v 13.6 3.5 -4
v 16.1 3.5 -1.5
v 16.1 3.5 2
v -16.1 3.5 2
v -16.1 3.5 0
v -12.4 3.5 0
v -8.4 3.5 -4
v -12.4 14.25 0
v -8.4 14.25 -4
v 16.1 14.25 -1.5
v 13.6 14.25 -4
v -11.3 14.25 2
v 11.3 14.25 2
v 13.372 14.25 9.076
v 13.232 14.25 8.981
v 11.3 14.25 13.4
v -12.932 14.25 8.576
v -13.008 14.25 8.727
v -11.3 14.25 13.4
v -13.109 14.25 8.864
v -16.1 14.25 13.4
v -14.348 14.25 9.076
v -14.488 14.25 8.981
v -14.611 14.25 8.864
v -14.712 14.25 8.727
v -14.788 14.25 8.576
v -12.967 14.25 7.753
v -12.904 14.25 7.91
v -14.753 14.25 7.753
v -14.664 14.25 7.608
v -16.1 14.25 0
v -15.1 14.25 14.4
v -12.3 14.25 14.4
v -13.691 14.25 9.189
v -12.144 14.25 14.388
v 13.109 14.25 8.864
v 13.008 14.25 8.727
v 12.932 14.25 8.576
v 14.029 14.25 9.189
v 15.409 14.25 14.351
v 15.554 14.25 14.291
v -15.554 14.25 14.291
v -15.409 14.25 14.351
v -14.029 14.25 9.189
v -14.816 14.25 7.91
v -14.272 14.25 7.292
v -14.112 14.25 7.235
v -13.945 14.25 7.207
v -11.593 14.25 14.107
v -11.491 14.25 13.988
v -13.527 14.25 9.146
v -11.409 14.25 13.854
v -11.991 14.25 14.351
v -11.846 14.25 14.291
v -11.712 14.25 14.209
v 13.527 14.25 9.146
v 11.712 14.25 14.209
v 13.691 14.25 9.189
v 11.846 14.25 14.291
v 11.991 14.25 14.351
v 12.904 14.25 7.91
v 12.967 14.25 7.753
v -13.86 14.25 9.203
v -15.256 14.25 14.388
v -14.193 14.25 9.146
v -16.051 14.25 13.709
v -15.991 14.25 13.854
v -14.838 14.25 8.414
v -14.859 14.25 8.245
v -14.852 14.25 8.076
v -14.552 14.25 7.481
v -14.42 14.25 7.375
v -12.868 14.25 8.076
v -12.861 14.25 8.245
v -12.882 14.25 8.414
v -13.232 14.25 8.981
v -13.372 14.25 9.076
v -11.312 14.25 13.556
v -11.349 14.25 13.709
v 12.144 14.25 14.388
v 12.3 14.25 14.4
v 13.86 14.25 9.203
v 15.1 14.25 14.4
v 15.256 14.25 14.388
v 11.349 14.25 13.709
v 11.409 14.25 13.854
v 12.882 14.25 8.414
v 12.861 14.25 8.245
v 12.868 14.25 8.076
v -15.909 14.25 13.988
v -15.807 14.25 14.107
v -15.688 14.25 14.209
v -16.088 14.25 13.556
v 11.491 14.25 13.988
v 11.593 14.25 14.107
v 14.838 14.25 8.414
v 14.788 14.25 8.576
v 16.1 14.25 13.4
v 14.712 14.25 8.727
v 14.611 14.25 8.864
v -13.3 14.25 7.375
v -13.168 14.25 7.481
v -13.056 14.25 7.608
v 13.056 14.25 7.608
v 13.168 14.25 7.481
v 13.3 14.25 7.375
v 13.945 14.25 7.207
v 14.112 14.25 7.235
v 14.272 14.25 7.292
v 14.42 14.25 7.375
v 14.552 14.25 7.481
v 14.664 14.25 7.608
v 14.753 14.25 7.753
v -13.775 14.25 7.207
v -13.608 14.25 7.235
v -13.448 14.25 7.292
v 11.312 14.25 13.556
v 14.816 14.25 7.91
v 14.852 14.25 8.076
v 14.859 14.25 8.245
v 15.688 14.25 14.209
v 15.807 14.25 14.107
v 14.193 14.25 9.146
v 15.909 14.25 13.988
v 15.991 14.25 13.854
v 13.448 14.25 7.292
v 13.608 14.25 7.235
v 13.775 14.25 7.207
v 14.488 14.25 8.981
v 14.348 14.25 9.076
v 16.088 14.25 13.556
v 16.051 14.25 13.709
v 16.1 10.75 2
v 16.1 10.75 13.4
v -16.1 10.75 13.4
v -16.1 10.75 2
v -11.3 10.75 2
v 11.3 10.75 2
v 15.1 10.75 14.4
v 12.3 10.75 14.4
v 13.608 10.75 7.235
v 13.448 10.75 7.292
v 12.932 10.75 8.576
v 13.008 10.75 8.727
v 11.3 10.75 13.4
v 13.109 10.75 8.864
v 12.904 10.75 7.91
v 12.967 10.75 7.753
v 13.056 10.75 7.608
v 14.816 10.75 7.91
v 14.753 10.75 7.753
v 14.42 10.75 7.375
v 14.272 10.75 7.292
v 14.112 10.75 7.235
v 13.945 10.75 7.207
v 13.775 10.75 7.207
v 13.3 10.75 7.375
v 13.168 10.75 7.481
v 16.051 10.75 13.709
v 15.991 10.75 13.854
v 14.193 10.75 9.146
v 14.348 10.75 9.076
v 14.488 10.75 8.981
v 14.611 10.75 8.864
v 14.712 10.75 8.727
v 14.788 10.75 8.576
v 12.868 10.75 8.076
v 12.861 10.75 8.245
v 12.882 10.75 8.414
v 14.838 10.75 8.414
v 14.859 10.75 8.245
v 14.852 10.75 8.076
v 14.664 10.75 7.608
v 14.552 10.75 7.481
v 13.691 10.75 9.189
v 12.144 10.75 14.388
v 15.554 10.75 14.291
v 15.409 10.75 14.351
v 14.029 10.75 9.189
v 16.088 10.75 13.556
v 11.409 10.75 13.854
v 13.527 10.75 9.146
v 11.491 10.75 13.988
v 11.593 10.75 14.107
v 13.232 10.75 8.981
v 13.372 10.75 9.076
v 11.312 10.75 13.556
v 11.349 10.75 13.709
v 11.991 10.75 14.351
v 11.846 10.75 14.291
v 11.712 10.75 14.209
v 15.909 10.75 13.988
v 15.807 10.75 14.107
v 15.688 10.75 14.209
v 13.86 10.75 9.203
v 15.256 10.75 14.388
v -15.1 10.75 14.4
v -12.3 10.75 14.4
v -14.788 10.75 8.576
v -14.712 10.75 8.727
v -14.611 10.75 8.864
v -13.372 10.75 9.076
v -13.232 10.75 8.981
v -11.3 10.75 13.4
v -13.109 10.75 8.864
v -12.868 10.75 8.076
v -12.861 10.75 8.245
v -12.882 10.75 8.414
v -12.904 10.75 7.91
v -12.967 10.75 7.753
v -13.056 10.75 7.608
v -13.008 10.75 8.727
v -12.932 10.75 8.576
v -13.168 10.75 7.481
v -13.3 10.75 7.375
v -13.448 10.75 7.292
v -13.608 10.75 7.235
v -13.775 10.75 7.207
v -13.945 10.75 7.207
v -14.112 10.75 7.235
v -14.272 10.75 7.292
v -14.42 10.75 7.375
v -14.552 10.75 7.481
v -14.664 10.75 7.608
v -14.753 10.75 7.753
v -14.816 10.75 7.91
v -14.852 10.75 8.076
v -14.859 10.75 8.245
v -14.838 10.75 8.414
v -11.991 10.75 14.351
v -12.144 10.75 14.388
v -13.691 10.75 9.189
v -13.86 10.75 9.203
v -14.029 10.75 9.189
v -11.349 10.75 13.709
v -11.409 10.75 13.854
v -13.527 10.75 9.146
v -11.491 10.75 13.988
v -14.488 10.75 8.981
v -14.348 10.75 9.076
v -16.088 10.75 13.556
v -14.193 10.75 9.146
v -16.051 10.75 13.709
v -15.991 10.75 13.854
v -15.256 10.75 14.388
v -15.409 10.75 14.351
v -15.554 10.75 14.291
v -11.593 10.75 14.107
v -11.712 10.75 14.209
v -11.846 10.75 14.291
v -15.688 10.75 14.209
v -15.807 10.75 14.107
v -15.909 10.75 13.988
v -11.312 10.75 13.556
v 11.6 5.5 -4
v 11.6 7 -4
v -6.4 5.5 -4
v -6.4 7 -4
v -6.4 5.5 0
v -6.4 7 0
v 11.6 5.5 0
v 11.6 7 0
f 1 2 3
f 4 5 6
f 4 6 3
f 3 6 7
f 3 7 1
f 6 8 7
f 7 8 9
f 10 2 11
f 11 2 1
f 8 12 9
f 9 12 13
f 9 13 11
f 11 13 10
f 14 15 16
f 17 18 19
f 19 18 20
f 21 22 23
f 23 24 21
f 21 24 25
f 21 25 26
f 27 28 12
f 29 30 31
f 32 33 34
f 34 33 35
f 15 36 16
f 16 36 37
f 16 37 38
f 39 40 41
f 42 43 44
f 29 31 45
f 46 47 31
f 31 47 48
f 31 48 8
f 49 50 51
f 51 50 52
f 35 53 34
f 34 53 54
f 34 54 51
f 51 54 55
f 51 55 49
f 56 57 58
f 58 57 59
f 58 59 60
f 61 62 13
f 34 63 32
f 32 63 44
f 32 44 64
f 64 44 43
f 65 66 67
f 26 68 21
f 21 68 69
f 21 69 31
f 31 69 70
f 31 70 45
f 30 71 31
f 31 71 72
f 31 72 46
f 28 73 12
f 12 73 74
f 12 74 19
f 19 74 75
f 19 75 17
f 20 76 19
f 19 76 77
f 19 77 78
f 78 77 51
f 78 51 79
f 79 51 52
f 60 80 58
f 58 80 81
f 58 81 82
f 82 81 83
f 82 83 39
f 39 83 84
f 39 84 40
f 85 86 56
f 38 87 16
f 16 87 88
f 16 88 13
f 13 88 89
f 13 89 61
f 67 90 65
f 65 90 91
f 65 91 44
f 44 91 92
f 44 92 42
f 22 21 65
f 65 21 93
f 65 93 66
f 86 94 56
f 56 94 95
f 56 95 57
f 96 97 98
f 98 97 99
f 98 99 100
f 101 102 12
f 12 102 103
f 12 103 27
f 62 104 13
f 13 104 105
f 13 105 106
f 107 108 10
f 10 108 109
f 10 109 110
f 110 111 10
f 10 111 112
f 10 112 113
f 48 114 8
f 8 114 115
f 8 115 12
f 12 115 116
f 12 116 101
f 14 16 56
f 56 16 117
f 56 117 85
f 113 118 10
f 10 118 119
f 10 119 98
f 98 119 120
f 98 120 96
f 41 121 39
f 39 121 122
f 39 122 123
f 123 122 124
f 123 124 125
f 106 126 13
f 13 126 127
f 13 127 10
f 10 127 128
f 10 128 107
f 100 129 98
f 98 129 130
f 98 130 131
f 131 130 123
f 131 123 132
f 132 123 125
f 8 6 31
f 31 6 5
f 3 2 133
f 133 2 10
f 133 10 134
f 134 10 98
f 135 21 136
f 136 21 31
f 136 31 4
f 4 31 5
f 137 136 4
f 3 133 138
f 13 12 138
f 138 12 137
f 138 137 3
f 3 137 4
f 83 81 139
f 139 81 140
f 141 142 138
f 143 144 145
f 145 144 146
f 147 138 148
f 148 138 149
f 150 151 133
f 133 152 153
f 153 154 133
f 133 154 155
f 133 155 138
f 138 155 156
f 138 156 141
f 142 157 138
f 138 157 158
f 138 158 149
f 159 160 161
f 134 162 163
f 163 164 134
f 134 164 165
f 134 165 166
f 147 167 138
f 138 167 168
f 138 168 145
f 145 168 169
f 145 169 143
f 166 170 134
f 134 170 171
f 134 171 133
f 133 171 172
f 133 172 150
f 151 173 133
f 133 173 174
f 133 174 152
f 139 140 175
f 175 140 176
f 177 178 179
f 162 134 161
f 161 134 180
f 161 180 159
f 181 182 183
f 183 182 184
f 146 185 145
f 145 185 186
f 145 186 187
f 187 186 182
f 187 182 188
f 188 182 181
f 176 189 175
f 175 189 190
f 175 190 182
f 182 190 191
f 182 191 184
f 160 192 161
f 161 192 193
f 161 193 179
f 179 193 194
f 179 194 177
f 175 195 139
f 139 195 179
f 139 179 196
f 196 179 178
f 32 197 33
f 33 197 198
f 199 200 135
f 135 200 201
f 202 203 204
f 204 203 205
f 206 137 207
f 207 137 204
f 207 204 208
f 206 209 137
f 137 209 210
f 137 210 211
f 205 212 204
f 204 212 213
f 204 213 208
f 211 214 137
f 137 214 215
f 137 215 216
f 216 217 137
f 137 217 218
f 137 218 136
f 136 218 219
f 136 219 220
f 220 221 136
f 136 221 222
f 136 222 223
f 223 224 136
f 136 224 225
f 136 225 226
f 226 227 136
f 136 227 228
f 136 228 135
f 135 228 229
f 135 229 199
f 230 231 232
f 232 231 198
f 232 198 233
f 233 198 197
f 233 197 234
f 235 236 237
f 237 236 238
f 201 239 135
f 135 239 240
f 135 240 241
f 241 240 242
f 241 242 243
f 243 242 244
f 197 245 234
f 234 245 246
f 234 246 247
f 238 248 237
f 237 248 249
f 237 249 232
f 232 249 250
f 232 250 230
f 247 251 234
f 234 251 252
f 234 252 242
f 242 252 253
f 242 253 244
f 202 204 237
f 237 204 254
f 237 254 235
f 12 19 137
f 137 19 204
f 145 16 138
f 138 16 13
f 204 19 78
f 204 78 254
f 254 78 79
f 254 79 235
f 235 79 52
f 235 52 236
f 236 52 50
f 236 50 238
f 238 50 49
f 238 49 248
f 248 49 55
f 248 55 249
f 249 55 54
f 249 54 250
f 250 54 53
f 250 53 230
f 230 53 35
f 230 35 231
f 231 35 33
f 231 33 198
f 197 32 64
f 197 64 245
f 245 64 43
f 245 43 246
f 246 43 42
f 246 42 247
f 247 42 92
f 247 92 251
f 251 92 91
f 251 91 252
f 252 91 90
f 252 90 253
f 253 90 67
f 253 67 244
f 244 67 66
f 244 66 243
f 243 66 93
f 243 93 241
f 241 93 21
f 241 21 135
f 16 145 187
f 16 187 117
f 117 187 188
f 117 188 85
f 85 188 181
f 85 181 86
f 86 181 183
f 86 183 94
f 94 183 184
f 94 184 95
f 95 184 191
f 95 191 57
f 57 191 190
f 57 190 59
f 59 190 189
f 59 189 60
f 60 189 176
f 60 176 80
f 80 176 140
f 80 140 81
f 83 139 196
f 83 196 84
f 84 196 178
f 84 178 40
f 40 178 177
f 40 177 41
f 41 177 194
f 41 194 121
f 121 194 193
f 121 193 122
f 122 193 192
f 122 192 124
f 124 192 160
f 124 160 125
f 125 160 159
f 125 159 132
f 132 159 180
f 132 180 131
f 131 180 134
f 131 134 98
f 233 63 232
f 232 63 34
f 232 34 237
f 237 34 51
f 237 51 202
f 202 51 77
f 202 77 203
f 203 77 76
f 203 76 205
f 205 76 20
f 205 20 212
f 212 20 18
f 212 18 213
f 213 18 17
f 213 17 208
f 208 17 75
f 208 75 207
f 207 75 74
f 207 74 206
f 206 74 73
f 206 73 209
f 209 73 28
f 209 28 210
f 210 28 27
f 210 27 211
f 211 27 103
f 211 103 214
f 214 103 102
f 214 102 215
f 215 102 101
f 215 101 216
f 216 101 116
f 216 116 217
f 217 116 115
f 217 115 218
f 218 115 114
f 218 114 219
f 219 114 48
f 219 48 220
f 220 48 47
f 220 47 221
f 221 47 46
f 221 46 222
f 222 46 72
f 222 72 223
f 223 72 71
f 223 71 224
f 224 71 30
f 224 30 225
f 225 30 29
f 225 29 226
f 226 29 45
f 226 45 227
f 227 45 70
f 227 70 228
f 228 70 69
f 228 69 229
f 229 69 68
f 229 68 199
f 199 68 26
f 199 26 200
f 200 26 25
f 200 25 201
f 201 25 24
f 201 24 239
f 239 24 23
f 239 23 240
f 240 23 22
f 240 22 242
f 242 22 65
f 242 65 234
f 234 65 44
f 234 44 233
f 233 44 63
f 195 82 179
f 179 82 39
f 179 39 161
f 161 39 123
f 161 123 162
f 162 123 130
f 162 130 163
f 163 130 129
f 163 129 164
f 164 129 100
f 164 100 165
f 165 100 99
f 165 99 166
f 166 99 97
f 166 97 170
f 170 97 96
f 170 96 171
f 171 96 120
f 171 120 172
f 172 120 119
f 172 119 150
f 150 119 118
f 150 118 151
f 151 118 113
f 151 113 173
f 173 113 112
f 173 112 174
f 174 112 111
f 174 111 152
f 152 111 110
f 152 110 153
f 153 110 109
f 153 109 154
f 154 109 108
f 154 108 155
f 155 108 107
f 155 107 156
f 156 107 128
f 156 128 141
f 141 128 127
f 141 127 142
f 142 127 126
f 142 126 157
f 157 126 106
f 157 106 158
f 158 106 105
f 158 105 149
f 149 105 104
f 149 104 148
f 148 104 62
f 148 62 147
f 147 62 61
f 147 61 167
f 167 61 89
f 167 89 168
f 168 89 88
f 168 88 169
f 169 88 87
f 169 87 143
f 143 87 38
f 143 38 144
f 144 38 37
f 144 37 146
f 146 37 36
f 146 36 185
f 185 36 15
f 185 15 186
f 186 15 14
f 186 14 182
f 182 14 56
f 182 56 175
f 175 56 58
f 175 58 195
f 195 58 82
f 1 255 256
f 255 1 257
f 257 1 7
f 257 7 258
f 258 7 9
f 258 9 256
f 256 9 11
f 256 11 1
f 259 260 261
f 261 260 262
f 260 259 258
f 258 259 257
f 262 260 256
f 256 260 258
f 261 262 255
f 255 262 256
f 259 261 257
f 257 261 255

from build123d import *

# Parameters (mm, degrees)
SKETCH1_W           = 32.2
SKETCH1_H           = 25.5
BOSS_EXTRUDE1_DEPTH = 14.4
SKETCH3_W           = 32.2
SKETCH3_H           = 21.75
CUT_EXTRUDE1_DEPTH  = 12.4
SKETCH5_W           = 22.6
SKETCH5_H           = 2
CUT_EXTRUDE2_DEPTH  = 14.4
FILLET1_R           = 1
FILLET2_R           = 1
FILLET3_R           = 1
FILLET4_R           = 1
SKETCH10_R          = 1
CUT_EXTRUDE3_DEPTH  = 10
SKETCH11_W          = 4.85
SKETCH11_H          = 1.75
CUT_EXTRUDE4_DEPTH  = 20
FILLET5_R           = 1
SKETCH12_W          = 20
SKETCH12_H          = 2
BOSS_EXTRUDE2_DEPTH = 5
BOSS_EXTRUDE3_DEPTH = 5
SKETCH14_W          = 37.842545744
SKETCH14_H          = 22.134319208
CUT_EXTRUDE5_DEPTH  = 28.030214576
BOSS_EXTRUDE5_DEPTH = 3.75
CHAMFER1_SIZE       = 5
BOSS_EXTRUDE6_START = 1.5
SKETCH16_R          = 1
BOSS_EXTRUDE6_DEPTH = 1.5
SKETCH17_W          = 31.920460338
SKETCH17_H          = 22.260321026
CUT_EXTRUDE6_DEPTH  = 1


with BuildPart() as part:
    # Sketch1 → Boss-Extrude1 (new body)
    with BuildSketch(Plane.XY):
        Rectangle(SKETCH1_W, SKETCH1_H)
    extrude(amount=BOSS_EXTRUDE1_DEPTH)

    # Sketch3 → Cut-Extrude1 (cut)
    with BuildSketch(Plane.XY.offset(14.4)):
        with Locations((0, -0.125)):
            Rectangle(SKETCH3_W, SKETCH3_H)
    extrude(amount=-CUT_EXTRUDE1_DEPTH, mode=Mode.SUBTRACT)

    # Sketch5 → Cut-Extrude2 (cut)
    with BuildSketch(Plane.XY.offset(14.4)):
        with Locations((0, 11.75)):
            Rectangle(SKETCH5_W, SKETCH5_H)
    extrude(amount=-CUT_EXTRUDE2_DEPTH, mode=Mode.SUBTRACT)

    # Fillet1
    fillet1_edges = [part.edges().sort_by_distance(p)[0] for p in [
        (-11.3, 11.75, 14.4),
    ]]
    fillet(fillet1_edges, radius=FILLET1_R)

    # Fillet2
    fillet2_edges = [part.edges().sort_by_distance(p)[0] for p in [
        (-16.1, 11.75, 14.4),
    ]]
    fillet(fillet2_edges, radius=FILLET2_R)

    # Fillet3
    fillet3_edges = [part.edges().sort_by_distance(p)[0] for p in [
        (11.3, 11.75, 14.4),
    ]]
    fillet(fillet3_edges, radius=FILLET3_R)

    # Fillet4
    fillet4_edges = [part.edges().sort_by_distance(p)[0] for p in [
        (16.1, 11.75, 14.4),
    ]]
    fillet(fillet4_edges, radius=FILLET4_R)

    # Sketch10 → Cut-Extrude3 (cut)
    with BuildSketch(Plane(origin=(0, 12.75, 0), x_dir=(1, 0, 0), z_dir=(0, 1, 0))):
        with Locations(Location((-13.86, -8.203047487, 0), (0, 0, 270))):
            Circle(SKETCH10_R)
    cut_extrude3 = extrude(amount=-CUT_EXTRUDE3_DEPTH, mode=Mode.SUBTRACT)

    # Mirror1: Cut-Extrude3 across plane
    add(cut_extrude3.mirror(Plane(origin=(0, 0, 0), x_dir=(0, 0, 1), z_dir=(1, 0, 0))), mode=Mode.SUBTRACT)

    # Sketch11 → Cut-Extrude4 (cut)
    with BuildSketch(Plane.XY.offset(14.4)):
        with Locations((-13.675, -11.875)):
            Rectangle(SKETCH11_W, SKETCH11_H)
    cut_extrude4 = extrude(amount=-CUT_EXTRUDE4_DEPTH, mode=Mode.SUBTRACT)

    # Mirror2: Cut-Extrude4 across plane
    add(cut_extrude4.mirror(Plane(origin=(0, 0, 0), x_dir=(0, 0, 1), z_dir=(1, 0, 0))), mode=Mode.SUBTRACT)

    # Fillet5
    fillet5_edges = [part.edges().sort_by_distance(p)[0] for p in [
        (16.1, -11, 1),
        (11.25, -11.875, 14.4),
        (11.25, -11.875, 0),
        (-11.25, -11.875, 0),
        (-16.1, -11, 1),
        (-11.25, -11.875, 14.4),
    ]]
    fillet(fillet5_edges, radius=FILLET5_R)

    # Sketch12 → Boss-Extrude2 (add)
    with BuildSketch(Plane(origin=(0, 0, 0), x_dir=(-1, 0, 0), z_dir=(0, 0, -1))):
        with Locations((-2.6, 4.5)):
            Rectangle(SKETCH12_W, SKETCH12_H)
    extrude(amount=BOSS_EXTRUDE2_DEPTH)

    # Sketch13 → Boss-Extrude3 (add)
    with BuildSketch(Plane(origin=(0, 0, 0), x_dir=(-1, 0, 0), z_dir=(0, 0, -1))):
        Polygon((-12.6, 9), (7.4, 9), (7.4, 7), (7.4, 5.5), (6.4, 5.5), (6.4, 7), (-11.6, 7), (-11.6, 5.5), (-12.6, 5.5), (-12.6, 7), align=None)
    extrude(amount=BOSS_EXTRUDE3_DEPTH)

    # Sketch14 → Cut-Extrude5 (cut, through all)
    with BuildSketch(Plane.XZ.offset(-3.5)):
        with Locations((-0.315004543, 4.826001817)):
            Rectangle(SKETCH14_W, SKETCH14_H)
    extrude(amount=CUT_EXTRUDE5_DEPTH, mode=Mode.SUBTRACT)

    # Sketch15 → Boss-Extrude5 (add)
    with BuildSketch(Plane(origin=(0, 12.75, 0), x_dir=(1, 0, 0), z_dir=(0, 1, 0))):
        Polygon((11.3, 0), (12.6, 0), (12.6, 5), (-7.4, 5), (-7.4, 0), (-11.3, 0), (-11.3, -2), (11.3, -2), align=None)
    extrude(amount=-BOSS_EXTRUDE5_DEPTH)

    # Chamfer1
    # the kernel refuses this chamfer: 5 mm, written as the material it adds along each edge
    with BuildSketch(Plane(origin=(-7.4, 3.5, 0), x_dir=(-0.9996219169112968, 0, 0.027495876610586372), z_dir=(0, 1, 0))) as chamfer1_piece_1_section:
        Polygon((CHAMFER1_SIZE * 0.999621916911, -CHAMFER1_SIZE * 0.0274958766106), (-CHAMFER1_SIZE * 0.0274958766106, -CHAMFER1_SIZE * 0.999621916911), (0, 0), align=None)
    chamfer1_piece_1 = extrude(amount=9.25, mode=Mode.PRIVATE)
    chamfer1_piece_1 = split(chamfer1_piece_1, bisect_by=Plane(origin=(-9.052020772, 8.125, -5), z_dir=(0, 0, 1)), keep=Keep.TOP, mode=Mode.PRIVATE)
    add(chamfer1_piece_1)
    with BuildSketch(Plane(origin=(12.6, 3.5, 0), x_dir=(-0.027495876610586317, 0, -0.9996219169112968), z_dir=(0, 1, 0))) as chamfer1_piece_2_section:
        Polygon((CHAMFER1_SIZE * 0.999621916911, -CHAMFER1_SIZE * 0.0274958766106), (-CHAMFER1_SIZE * 0.0274958766106, -CHAMFER1_SIZE * 0.999621916911), (0, 0), align=None)
    chamfer1_piece_2 = extrude(amount=9.25, mode=Mode.PRIVATE)
    chamfer1_piece_2 = split(chamfer1_piece_2, bisect_by=Plane(origin=(16.1, 8.125, -1.788652221), z_dir=(-1, 0, 0)), keep=Keep.TOP, mode=Mode.PRIVATE)
    chamfer1_piece_2 = split(chamfer1_piece_2, bisect_by=Plane(origin=(13.973224067, 8.125, -5), z_dir=(0, 0, 1)), keep=Keep.TOP, mode=Mode.PRIVATE)
    add(chamfer1_piece_2)

    # Sketch16 → Boss-Extrude6 (add)
    with BuildSketch(Plane(origin=(0, 12.75, 0), x_dir=(1, 0, 0), z_dir=(0, 1, 0)).offset(BOSS_EXTRUDE6_START)):
        with BuildLine():
            Line((16.1, -13.4), (16.1, 1.5))
            Line((16.1, 1.5), (12.6, 5))
            Line((12.6, 5), (-7.4, 5))
            Line((-7.4, 5), (-12.4, 0))
            Line((-12.4, 0), (-16.1, 0))
            Line((-16.1, 0), (-16.1, -13.4))
            ThreePointArc((-16.1, -13.4), (-15.807106781, -14.107106781), (-15.1, -14.4))
            Line((-15.1, -14.4), (-12.3, -14.4))
            ThreePointArc((-12.3, -14.4), (-11.592893219, -14.107106781), (-11.3, -13.4))
            Line((-11.3, -13.4), (-11.3, -2))
            Line((-11.3, -2), (11.3, -2))
            Line((11.3, -2), (11.3, -13.4))
            ThreePointArc((11.3, -13.4), (11.592893219, -14.107106781), (12.3, -14.4))
            Line((12.3, -14.4), (15.1, -14.4))
            ThreePointArc((15.1, -14.4), (15.807106781, -14.107106781), (16.1, -13.4))
        make_face()
        with Locations(Location((13.86, -8.203047487, 0), (0, 0, 270))):
            Circle(SKETCH16_R, mode=Mode.SUBTRACT)
        with Locations(Location((-13.86, -8.203047487, 0), (0, 0, 270))):
            Circle(SKETCH16_R, mode=Mode.SUBTRACT)
    extrude(amount=-BOSS_EXTRUDE6_DEPTH)

    # Sketch17 → Cut-Extrude6 (cut)
    with BuildSketch(Plane(origin=(0, 0, -5), x_dir=(-1, 0, 0), z_dir=(0, 0, -1))):
        with Locations((-2.436035131, 9.274005754)):
            Rectangle(SKETCH17_W, SKETCH17_H)
    extrude(amount=-CUT_EXTRUDE6_DEPTH, mode=Mode.SUBTRACT)


solid = part.part
